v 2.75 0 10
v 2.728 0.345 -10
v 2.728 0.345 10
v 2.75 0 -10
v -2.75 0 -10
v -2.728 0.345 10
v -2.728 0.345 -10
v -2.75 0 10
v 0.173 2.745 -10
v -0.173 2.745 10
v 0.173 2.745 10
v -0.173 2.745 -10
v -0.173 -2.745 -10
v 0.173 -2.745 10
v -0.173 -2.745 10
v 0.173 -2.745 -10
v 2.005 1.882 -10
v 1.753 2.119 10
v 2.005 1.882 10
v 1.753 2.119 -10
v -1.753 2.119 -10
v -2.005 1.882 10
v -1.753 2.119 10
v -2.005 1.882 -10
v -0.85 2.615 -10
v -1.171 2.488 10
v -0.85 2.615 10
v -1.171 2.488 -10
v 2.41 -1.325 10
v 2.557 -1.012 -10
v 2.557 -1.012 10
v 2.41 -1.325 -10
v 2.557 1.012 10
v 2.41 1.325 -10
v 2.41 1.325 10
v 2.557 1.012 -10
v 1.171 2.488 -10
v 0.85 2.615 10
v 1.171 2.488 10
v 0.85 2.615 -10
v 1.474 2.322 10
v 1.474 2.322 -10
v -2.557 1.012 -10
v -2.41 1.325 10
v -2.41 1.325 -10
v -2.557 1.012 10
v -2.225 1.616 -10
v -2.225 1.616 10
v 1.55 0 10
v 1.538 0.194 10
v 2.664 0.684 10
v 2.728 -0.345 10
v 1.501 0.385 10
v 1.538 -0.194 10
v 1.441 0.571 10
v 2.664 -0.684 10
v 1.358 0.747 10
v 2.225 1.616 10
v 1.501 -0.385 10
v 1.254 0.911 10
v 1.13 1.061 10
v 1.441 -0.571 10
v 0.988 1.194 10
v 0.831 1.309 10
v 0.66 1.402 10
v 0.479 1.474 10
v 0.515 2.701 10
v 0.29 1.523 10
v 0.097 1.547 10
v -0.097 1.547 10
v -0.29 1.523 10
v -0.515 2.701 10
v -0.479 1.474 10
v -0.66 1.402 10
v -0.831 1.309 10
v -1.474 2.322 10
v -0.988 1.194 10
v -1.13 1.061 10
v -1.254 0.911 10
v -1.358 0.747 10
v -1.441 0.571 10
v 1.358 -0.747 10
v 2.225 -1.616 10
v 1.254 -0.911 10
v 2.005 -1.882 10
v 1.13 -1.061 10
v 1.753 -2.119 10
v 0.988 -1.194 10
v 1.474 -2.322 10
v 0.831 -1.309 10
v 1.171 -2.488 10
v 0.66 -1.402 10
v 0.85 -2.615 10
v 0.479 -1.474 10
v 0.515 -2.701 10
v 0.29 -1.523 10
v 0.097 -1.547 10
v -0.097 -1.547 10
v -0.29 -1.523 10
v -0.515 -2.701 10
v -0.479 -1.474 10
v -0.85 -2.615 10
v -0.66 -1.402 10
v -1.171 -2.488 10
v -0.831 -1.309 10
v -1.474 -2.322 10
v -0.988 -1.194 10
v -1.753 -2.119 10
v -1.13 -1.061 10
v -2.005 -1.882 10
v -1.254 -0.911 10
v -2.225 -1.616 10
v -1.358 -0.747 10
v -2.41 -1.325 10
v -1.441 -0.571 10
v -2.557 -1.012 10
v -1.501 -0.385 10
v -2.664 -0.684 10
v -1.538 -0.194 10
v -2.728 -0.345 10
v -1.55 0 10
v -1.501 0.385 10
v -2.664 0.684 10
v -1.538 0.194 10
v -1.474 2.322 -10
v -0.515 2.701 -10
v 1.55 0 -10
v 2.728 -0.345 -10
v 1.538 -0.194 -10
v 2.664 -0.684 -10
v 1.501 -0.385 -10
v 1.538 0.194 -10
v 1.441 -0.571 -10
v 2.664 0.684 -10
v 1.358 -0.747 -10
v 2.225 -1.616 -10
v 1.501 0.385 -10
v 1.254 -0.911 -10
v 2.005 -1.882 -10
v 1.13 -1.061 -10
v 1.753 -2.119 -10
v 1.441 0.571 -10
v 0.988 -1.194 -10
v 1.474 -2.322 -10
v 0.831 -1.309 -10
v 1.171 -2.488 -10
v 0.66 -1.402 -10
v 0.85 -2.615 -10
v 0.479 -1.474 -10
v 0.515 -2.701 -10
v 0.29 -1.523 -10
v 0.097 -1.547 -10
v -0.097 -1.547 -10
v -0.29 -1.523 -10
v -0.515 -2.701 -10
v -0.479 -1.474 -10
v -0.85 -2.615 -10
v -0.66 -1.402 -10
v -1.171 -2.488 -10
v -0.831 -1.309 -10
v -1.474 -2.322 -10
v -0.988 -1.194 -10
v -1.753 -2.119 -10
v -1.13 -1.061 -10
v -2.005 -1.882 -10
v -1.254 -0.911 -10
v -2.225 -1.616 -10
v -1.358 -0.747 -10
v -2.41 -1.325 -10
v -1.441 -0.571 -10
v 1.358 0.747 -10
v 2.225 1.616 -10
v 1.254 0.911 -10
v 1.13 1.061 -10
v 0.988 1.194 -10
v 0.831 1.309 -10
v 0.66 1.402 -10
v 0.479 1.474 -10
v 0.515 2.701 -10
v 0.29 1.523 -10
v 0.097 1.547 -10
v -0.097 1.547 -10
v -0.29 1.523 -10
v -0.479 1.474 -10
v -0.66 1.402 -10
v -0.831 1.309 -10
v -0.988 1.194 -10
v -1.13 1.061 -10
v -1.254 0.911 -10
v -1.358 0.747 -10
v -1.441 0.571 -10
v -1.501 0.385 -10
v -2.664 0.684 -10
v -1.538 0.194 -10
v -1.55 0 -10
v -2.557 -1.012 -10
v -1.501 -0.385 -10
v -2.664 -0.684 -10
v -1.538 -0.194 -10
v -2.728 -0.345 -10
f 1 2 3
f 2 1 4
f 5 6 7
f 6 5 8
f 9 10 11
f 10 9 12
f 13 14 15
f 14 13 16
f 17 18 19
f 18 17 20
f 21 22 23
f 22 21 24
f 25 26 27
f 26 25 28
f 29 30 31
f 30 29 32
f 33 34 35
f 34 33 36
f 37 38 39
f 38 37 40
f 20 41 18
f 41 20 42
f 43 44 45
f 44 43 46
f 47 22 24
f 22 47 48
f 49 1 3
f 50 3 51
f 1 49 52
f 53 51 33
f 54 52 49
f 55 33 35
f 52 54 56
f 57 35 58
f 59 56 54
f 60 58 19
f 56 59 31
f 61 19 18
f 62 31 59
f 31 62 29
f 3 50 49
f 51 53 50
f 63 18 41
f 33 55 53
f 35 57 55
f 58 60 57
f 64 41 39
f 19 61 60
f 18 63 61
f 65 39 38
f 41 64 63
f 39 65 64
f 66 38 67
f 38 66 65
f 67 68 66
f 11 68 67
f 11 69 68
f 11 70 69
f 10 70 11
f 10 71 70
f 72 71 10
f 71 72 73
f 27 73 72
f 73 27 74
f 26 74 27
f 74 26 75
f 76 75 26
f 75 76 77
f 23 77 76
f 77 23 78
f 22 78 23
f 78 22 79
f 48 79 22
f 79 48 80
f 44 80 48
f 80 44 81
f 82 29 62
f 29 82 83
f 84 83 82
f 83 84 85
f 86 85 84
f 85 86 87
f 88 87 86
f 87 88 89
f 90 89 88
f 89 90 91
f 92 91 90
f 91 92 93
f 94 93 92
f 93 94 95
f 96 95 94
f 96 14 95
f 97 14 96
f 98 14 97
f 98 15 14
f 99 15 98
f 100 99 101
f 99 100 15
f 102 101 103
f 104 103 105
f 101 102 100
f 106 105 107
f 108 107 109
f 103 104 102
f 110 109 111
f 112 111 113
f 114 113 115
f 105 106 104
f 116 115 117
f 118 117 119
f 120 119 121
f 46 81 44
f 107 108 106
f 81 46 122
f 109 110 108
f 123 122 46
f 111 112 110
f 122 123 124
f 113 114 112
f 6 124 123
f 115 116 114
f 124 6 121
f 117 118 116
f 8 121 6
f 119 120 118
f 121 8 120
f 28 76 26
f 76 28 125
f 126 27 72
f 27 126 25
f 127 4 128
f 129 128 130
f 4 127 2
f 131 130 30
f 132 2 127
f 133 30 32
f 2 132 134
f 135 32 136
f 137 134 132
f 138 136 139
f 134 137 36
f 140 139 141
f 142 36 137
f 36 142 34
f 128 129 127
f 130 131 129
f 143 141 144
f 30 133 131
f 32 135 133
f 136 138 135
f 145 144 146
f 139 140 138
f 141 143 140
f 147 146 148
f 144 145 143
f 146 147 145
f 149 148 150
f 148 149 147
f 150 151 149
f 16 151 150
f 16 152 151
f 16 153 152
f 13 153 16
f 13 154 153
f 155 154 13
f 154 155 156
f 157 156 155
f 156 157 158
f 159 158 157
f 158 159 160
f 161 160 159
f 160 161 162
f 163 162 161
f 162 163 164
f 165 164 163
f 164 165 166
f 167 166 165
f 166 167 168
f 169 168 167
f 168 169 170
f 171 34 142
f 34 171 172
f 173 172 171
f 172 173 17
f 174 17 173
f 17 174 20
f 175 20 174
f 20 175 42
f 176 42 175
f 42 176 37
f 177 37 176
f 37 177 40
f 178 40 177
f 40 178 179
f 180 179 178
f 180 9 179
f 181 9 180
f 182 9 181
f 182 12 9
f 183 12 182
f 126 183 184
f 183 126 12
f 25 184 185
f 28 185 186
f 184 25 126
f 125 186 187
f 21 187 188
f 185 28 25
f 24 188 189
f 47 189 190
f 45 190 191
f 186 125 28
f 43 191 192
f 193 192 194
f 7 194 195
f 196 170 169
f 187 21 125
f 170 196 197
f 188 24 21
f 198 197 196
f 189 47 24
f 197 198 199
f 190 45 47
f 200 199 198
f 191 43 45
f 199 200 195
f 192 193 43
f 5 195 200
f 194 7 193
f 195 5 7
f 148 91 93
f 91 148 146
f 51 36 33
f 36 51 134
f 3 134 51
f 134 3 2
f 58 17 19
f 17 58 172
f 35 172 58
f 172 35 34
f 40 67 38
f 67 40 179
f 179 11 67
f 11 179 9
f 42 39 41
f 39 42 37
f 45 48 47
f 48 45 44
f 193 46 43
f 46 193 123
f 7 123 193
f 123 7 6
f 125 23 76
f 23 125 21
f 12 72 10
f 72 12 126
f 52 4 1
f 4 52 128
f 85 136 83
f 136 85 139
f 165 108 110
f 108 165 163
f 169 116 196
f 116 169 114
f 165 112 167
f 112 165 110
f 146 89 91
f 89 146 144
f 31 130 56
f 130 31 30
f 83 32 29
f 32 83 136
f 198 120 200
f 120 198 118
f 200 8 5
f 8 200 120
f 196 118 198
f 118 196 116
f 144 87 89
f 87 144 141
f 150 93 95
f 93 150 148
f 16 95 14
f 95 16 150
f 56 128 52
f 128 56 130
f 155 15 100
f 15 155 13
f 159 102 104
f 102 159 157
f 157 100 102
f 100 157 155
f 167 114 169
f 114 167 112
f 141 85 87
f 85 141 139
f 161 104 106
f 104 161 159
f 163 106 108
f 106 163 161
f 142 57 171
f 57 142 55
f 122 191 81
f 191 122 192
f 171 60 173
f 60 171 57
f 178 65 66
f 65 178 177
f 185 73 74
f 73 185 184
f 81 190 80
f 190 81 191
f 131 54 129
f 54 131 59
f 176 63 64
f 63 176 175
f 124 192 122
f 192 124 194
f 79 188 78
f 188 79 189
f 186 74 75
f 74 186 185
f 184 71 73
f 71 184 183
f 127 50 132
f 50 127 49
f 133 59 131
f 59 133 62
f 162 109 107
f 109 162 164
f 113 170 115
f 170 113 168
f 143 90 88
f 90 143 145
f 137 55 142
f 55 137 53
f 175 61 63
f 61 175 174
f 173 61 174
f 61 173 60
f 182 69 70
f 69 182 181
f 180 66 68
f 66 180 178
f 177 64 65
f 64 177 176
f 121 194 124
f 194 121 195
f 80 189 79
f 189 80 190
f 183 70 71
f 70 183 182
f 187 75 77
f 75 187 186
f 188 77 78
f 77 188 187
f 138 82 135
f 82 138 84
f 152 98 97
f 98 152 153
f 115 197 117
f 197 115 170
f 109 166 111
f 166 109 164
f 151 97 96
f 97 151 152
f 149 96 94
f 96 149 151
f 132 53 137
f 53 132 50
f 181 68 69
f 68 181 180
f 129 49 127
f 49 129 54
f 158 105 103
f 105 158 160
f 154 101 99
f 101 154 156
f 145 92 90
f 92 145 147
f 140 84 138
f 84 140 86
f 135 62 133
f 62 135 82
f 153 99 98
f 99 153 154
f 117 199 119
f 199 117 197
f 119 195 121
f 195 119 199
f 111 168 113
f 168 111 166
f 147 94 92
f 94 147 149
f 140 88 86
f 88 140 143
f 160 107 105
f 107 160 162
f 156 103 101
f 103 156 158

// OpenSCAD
$fn = 50;


difference() {
	union() {
		translate(v = [0, 0, -10.0000000000]) {
			cylinder(h = 20, r = 2.7500000000);
		}
	}
	union() {
		translate(v = [0, 0, -100.0000000000]) {
			cylinder(h = 200, r = 1.5500000000);
		}
	}
}
